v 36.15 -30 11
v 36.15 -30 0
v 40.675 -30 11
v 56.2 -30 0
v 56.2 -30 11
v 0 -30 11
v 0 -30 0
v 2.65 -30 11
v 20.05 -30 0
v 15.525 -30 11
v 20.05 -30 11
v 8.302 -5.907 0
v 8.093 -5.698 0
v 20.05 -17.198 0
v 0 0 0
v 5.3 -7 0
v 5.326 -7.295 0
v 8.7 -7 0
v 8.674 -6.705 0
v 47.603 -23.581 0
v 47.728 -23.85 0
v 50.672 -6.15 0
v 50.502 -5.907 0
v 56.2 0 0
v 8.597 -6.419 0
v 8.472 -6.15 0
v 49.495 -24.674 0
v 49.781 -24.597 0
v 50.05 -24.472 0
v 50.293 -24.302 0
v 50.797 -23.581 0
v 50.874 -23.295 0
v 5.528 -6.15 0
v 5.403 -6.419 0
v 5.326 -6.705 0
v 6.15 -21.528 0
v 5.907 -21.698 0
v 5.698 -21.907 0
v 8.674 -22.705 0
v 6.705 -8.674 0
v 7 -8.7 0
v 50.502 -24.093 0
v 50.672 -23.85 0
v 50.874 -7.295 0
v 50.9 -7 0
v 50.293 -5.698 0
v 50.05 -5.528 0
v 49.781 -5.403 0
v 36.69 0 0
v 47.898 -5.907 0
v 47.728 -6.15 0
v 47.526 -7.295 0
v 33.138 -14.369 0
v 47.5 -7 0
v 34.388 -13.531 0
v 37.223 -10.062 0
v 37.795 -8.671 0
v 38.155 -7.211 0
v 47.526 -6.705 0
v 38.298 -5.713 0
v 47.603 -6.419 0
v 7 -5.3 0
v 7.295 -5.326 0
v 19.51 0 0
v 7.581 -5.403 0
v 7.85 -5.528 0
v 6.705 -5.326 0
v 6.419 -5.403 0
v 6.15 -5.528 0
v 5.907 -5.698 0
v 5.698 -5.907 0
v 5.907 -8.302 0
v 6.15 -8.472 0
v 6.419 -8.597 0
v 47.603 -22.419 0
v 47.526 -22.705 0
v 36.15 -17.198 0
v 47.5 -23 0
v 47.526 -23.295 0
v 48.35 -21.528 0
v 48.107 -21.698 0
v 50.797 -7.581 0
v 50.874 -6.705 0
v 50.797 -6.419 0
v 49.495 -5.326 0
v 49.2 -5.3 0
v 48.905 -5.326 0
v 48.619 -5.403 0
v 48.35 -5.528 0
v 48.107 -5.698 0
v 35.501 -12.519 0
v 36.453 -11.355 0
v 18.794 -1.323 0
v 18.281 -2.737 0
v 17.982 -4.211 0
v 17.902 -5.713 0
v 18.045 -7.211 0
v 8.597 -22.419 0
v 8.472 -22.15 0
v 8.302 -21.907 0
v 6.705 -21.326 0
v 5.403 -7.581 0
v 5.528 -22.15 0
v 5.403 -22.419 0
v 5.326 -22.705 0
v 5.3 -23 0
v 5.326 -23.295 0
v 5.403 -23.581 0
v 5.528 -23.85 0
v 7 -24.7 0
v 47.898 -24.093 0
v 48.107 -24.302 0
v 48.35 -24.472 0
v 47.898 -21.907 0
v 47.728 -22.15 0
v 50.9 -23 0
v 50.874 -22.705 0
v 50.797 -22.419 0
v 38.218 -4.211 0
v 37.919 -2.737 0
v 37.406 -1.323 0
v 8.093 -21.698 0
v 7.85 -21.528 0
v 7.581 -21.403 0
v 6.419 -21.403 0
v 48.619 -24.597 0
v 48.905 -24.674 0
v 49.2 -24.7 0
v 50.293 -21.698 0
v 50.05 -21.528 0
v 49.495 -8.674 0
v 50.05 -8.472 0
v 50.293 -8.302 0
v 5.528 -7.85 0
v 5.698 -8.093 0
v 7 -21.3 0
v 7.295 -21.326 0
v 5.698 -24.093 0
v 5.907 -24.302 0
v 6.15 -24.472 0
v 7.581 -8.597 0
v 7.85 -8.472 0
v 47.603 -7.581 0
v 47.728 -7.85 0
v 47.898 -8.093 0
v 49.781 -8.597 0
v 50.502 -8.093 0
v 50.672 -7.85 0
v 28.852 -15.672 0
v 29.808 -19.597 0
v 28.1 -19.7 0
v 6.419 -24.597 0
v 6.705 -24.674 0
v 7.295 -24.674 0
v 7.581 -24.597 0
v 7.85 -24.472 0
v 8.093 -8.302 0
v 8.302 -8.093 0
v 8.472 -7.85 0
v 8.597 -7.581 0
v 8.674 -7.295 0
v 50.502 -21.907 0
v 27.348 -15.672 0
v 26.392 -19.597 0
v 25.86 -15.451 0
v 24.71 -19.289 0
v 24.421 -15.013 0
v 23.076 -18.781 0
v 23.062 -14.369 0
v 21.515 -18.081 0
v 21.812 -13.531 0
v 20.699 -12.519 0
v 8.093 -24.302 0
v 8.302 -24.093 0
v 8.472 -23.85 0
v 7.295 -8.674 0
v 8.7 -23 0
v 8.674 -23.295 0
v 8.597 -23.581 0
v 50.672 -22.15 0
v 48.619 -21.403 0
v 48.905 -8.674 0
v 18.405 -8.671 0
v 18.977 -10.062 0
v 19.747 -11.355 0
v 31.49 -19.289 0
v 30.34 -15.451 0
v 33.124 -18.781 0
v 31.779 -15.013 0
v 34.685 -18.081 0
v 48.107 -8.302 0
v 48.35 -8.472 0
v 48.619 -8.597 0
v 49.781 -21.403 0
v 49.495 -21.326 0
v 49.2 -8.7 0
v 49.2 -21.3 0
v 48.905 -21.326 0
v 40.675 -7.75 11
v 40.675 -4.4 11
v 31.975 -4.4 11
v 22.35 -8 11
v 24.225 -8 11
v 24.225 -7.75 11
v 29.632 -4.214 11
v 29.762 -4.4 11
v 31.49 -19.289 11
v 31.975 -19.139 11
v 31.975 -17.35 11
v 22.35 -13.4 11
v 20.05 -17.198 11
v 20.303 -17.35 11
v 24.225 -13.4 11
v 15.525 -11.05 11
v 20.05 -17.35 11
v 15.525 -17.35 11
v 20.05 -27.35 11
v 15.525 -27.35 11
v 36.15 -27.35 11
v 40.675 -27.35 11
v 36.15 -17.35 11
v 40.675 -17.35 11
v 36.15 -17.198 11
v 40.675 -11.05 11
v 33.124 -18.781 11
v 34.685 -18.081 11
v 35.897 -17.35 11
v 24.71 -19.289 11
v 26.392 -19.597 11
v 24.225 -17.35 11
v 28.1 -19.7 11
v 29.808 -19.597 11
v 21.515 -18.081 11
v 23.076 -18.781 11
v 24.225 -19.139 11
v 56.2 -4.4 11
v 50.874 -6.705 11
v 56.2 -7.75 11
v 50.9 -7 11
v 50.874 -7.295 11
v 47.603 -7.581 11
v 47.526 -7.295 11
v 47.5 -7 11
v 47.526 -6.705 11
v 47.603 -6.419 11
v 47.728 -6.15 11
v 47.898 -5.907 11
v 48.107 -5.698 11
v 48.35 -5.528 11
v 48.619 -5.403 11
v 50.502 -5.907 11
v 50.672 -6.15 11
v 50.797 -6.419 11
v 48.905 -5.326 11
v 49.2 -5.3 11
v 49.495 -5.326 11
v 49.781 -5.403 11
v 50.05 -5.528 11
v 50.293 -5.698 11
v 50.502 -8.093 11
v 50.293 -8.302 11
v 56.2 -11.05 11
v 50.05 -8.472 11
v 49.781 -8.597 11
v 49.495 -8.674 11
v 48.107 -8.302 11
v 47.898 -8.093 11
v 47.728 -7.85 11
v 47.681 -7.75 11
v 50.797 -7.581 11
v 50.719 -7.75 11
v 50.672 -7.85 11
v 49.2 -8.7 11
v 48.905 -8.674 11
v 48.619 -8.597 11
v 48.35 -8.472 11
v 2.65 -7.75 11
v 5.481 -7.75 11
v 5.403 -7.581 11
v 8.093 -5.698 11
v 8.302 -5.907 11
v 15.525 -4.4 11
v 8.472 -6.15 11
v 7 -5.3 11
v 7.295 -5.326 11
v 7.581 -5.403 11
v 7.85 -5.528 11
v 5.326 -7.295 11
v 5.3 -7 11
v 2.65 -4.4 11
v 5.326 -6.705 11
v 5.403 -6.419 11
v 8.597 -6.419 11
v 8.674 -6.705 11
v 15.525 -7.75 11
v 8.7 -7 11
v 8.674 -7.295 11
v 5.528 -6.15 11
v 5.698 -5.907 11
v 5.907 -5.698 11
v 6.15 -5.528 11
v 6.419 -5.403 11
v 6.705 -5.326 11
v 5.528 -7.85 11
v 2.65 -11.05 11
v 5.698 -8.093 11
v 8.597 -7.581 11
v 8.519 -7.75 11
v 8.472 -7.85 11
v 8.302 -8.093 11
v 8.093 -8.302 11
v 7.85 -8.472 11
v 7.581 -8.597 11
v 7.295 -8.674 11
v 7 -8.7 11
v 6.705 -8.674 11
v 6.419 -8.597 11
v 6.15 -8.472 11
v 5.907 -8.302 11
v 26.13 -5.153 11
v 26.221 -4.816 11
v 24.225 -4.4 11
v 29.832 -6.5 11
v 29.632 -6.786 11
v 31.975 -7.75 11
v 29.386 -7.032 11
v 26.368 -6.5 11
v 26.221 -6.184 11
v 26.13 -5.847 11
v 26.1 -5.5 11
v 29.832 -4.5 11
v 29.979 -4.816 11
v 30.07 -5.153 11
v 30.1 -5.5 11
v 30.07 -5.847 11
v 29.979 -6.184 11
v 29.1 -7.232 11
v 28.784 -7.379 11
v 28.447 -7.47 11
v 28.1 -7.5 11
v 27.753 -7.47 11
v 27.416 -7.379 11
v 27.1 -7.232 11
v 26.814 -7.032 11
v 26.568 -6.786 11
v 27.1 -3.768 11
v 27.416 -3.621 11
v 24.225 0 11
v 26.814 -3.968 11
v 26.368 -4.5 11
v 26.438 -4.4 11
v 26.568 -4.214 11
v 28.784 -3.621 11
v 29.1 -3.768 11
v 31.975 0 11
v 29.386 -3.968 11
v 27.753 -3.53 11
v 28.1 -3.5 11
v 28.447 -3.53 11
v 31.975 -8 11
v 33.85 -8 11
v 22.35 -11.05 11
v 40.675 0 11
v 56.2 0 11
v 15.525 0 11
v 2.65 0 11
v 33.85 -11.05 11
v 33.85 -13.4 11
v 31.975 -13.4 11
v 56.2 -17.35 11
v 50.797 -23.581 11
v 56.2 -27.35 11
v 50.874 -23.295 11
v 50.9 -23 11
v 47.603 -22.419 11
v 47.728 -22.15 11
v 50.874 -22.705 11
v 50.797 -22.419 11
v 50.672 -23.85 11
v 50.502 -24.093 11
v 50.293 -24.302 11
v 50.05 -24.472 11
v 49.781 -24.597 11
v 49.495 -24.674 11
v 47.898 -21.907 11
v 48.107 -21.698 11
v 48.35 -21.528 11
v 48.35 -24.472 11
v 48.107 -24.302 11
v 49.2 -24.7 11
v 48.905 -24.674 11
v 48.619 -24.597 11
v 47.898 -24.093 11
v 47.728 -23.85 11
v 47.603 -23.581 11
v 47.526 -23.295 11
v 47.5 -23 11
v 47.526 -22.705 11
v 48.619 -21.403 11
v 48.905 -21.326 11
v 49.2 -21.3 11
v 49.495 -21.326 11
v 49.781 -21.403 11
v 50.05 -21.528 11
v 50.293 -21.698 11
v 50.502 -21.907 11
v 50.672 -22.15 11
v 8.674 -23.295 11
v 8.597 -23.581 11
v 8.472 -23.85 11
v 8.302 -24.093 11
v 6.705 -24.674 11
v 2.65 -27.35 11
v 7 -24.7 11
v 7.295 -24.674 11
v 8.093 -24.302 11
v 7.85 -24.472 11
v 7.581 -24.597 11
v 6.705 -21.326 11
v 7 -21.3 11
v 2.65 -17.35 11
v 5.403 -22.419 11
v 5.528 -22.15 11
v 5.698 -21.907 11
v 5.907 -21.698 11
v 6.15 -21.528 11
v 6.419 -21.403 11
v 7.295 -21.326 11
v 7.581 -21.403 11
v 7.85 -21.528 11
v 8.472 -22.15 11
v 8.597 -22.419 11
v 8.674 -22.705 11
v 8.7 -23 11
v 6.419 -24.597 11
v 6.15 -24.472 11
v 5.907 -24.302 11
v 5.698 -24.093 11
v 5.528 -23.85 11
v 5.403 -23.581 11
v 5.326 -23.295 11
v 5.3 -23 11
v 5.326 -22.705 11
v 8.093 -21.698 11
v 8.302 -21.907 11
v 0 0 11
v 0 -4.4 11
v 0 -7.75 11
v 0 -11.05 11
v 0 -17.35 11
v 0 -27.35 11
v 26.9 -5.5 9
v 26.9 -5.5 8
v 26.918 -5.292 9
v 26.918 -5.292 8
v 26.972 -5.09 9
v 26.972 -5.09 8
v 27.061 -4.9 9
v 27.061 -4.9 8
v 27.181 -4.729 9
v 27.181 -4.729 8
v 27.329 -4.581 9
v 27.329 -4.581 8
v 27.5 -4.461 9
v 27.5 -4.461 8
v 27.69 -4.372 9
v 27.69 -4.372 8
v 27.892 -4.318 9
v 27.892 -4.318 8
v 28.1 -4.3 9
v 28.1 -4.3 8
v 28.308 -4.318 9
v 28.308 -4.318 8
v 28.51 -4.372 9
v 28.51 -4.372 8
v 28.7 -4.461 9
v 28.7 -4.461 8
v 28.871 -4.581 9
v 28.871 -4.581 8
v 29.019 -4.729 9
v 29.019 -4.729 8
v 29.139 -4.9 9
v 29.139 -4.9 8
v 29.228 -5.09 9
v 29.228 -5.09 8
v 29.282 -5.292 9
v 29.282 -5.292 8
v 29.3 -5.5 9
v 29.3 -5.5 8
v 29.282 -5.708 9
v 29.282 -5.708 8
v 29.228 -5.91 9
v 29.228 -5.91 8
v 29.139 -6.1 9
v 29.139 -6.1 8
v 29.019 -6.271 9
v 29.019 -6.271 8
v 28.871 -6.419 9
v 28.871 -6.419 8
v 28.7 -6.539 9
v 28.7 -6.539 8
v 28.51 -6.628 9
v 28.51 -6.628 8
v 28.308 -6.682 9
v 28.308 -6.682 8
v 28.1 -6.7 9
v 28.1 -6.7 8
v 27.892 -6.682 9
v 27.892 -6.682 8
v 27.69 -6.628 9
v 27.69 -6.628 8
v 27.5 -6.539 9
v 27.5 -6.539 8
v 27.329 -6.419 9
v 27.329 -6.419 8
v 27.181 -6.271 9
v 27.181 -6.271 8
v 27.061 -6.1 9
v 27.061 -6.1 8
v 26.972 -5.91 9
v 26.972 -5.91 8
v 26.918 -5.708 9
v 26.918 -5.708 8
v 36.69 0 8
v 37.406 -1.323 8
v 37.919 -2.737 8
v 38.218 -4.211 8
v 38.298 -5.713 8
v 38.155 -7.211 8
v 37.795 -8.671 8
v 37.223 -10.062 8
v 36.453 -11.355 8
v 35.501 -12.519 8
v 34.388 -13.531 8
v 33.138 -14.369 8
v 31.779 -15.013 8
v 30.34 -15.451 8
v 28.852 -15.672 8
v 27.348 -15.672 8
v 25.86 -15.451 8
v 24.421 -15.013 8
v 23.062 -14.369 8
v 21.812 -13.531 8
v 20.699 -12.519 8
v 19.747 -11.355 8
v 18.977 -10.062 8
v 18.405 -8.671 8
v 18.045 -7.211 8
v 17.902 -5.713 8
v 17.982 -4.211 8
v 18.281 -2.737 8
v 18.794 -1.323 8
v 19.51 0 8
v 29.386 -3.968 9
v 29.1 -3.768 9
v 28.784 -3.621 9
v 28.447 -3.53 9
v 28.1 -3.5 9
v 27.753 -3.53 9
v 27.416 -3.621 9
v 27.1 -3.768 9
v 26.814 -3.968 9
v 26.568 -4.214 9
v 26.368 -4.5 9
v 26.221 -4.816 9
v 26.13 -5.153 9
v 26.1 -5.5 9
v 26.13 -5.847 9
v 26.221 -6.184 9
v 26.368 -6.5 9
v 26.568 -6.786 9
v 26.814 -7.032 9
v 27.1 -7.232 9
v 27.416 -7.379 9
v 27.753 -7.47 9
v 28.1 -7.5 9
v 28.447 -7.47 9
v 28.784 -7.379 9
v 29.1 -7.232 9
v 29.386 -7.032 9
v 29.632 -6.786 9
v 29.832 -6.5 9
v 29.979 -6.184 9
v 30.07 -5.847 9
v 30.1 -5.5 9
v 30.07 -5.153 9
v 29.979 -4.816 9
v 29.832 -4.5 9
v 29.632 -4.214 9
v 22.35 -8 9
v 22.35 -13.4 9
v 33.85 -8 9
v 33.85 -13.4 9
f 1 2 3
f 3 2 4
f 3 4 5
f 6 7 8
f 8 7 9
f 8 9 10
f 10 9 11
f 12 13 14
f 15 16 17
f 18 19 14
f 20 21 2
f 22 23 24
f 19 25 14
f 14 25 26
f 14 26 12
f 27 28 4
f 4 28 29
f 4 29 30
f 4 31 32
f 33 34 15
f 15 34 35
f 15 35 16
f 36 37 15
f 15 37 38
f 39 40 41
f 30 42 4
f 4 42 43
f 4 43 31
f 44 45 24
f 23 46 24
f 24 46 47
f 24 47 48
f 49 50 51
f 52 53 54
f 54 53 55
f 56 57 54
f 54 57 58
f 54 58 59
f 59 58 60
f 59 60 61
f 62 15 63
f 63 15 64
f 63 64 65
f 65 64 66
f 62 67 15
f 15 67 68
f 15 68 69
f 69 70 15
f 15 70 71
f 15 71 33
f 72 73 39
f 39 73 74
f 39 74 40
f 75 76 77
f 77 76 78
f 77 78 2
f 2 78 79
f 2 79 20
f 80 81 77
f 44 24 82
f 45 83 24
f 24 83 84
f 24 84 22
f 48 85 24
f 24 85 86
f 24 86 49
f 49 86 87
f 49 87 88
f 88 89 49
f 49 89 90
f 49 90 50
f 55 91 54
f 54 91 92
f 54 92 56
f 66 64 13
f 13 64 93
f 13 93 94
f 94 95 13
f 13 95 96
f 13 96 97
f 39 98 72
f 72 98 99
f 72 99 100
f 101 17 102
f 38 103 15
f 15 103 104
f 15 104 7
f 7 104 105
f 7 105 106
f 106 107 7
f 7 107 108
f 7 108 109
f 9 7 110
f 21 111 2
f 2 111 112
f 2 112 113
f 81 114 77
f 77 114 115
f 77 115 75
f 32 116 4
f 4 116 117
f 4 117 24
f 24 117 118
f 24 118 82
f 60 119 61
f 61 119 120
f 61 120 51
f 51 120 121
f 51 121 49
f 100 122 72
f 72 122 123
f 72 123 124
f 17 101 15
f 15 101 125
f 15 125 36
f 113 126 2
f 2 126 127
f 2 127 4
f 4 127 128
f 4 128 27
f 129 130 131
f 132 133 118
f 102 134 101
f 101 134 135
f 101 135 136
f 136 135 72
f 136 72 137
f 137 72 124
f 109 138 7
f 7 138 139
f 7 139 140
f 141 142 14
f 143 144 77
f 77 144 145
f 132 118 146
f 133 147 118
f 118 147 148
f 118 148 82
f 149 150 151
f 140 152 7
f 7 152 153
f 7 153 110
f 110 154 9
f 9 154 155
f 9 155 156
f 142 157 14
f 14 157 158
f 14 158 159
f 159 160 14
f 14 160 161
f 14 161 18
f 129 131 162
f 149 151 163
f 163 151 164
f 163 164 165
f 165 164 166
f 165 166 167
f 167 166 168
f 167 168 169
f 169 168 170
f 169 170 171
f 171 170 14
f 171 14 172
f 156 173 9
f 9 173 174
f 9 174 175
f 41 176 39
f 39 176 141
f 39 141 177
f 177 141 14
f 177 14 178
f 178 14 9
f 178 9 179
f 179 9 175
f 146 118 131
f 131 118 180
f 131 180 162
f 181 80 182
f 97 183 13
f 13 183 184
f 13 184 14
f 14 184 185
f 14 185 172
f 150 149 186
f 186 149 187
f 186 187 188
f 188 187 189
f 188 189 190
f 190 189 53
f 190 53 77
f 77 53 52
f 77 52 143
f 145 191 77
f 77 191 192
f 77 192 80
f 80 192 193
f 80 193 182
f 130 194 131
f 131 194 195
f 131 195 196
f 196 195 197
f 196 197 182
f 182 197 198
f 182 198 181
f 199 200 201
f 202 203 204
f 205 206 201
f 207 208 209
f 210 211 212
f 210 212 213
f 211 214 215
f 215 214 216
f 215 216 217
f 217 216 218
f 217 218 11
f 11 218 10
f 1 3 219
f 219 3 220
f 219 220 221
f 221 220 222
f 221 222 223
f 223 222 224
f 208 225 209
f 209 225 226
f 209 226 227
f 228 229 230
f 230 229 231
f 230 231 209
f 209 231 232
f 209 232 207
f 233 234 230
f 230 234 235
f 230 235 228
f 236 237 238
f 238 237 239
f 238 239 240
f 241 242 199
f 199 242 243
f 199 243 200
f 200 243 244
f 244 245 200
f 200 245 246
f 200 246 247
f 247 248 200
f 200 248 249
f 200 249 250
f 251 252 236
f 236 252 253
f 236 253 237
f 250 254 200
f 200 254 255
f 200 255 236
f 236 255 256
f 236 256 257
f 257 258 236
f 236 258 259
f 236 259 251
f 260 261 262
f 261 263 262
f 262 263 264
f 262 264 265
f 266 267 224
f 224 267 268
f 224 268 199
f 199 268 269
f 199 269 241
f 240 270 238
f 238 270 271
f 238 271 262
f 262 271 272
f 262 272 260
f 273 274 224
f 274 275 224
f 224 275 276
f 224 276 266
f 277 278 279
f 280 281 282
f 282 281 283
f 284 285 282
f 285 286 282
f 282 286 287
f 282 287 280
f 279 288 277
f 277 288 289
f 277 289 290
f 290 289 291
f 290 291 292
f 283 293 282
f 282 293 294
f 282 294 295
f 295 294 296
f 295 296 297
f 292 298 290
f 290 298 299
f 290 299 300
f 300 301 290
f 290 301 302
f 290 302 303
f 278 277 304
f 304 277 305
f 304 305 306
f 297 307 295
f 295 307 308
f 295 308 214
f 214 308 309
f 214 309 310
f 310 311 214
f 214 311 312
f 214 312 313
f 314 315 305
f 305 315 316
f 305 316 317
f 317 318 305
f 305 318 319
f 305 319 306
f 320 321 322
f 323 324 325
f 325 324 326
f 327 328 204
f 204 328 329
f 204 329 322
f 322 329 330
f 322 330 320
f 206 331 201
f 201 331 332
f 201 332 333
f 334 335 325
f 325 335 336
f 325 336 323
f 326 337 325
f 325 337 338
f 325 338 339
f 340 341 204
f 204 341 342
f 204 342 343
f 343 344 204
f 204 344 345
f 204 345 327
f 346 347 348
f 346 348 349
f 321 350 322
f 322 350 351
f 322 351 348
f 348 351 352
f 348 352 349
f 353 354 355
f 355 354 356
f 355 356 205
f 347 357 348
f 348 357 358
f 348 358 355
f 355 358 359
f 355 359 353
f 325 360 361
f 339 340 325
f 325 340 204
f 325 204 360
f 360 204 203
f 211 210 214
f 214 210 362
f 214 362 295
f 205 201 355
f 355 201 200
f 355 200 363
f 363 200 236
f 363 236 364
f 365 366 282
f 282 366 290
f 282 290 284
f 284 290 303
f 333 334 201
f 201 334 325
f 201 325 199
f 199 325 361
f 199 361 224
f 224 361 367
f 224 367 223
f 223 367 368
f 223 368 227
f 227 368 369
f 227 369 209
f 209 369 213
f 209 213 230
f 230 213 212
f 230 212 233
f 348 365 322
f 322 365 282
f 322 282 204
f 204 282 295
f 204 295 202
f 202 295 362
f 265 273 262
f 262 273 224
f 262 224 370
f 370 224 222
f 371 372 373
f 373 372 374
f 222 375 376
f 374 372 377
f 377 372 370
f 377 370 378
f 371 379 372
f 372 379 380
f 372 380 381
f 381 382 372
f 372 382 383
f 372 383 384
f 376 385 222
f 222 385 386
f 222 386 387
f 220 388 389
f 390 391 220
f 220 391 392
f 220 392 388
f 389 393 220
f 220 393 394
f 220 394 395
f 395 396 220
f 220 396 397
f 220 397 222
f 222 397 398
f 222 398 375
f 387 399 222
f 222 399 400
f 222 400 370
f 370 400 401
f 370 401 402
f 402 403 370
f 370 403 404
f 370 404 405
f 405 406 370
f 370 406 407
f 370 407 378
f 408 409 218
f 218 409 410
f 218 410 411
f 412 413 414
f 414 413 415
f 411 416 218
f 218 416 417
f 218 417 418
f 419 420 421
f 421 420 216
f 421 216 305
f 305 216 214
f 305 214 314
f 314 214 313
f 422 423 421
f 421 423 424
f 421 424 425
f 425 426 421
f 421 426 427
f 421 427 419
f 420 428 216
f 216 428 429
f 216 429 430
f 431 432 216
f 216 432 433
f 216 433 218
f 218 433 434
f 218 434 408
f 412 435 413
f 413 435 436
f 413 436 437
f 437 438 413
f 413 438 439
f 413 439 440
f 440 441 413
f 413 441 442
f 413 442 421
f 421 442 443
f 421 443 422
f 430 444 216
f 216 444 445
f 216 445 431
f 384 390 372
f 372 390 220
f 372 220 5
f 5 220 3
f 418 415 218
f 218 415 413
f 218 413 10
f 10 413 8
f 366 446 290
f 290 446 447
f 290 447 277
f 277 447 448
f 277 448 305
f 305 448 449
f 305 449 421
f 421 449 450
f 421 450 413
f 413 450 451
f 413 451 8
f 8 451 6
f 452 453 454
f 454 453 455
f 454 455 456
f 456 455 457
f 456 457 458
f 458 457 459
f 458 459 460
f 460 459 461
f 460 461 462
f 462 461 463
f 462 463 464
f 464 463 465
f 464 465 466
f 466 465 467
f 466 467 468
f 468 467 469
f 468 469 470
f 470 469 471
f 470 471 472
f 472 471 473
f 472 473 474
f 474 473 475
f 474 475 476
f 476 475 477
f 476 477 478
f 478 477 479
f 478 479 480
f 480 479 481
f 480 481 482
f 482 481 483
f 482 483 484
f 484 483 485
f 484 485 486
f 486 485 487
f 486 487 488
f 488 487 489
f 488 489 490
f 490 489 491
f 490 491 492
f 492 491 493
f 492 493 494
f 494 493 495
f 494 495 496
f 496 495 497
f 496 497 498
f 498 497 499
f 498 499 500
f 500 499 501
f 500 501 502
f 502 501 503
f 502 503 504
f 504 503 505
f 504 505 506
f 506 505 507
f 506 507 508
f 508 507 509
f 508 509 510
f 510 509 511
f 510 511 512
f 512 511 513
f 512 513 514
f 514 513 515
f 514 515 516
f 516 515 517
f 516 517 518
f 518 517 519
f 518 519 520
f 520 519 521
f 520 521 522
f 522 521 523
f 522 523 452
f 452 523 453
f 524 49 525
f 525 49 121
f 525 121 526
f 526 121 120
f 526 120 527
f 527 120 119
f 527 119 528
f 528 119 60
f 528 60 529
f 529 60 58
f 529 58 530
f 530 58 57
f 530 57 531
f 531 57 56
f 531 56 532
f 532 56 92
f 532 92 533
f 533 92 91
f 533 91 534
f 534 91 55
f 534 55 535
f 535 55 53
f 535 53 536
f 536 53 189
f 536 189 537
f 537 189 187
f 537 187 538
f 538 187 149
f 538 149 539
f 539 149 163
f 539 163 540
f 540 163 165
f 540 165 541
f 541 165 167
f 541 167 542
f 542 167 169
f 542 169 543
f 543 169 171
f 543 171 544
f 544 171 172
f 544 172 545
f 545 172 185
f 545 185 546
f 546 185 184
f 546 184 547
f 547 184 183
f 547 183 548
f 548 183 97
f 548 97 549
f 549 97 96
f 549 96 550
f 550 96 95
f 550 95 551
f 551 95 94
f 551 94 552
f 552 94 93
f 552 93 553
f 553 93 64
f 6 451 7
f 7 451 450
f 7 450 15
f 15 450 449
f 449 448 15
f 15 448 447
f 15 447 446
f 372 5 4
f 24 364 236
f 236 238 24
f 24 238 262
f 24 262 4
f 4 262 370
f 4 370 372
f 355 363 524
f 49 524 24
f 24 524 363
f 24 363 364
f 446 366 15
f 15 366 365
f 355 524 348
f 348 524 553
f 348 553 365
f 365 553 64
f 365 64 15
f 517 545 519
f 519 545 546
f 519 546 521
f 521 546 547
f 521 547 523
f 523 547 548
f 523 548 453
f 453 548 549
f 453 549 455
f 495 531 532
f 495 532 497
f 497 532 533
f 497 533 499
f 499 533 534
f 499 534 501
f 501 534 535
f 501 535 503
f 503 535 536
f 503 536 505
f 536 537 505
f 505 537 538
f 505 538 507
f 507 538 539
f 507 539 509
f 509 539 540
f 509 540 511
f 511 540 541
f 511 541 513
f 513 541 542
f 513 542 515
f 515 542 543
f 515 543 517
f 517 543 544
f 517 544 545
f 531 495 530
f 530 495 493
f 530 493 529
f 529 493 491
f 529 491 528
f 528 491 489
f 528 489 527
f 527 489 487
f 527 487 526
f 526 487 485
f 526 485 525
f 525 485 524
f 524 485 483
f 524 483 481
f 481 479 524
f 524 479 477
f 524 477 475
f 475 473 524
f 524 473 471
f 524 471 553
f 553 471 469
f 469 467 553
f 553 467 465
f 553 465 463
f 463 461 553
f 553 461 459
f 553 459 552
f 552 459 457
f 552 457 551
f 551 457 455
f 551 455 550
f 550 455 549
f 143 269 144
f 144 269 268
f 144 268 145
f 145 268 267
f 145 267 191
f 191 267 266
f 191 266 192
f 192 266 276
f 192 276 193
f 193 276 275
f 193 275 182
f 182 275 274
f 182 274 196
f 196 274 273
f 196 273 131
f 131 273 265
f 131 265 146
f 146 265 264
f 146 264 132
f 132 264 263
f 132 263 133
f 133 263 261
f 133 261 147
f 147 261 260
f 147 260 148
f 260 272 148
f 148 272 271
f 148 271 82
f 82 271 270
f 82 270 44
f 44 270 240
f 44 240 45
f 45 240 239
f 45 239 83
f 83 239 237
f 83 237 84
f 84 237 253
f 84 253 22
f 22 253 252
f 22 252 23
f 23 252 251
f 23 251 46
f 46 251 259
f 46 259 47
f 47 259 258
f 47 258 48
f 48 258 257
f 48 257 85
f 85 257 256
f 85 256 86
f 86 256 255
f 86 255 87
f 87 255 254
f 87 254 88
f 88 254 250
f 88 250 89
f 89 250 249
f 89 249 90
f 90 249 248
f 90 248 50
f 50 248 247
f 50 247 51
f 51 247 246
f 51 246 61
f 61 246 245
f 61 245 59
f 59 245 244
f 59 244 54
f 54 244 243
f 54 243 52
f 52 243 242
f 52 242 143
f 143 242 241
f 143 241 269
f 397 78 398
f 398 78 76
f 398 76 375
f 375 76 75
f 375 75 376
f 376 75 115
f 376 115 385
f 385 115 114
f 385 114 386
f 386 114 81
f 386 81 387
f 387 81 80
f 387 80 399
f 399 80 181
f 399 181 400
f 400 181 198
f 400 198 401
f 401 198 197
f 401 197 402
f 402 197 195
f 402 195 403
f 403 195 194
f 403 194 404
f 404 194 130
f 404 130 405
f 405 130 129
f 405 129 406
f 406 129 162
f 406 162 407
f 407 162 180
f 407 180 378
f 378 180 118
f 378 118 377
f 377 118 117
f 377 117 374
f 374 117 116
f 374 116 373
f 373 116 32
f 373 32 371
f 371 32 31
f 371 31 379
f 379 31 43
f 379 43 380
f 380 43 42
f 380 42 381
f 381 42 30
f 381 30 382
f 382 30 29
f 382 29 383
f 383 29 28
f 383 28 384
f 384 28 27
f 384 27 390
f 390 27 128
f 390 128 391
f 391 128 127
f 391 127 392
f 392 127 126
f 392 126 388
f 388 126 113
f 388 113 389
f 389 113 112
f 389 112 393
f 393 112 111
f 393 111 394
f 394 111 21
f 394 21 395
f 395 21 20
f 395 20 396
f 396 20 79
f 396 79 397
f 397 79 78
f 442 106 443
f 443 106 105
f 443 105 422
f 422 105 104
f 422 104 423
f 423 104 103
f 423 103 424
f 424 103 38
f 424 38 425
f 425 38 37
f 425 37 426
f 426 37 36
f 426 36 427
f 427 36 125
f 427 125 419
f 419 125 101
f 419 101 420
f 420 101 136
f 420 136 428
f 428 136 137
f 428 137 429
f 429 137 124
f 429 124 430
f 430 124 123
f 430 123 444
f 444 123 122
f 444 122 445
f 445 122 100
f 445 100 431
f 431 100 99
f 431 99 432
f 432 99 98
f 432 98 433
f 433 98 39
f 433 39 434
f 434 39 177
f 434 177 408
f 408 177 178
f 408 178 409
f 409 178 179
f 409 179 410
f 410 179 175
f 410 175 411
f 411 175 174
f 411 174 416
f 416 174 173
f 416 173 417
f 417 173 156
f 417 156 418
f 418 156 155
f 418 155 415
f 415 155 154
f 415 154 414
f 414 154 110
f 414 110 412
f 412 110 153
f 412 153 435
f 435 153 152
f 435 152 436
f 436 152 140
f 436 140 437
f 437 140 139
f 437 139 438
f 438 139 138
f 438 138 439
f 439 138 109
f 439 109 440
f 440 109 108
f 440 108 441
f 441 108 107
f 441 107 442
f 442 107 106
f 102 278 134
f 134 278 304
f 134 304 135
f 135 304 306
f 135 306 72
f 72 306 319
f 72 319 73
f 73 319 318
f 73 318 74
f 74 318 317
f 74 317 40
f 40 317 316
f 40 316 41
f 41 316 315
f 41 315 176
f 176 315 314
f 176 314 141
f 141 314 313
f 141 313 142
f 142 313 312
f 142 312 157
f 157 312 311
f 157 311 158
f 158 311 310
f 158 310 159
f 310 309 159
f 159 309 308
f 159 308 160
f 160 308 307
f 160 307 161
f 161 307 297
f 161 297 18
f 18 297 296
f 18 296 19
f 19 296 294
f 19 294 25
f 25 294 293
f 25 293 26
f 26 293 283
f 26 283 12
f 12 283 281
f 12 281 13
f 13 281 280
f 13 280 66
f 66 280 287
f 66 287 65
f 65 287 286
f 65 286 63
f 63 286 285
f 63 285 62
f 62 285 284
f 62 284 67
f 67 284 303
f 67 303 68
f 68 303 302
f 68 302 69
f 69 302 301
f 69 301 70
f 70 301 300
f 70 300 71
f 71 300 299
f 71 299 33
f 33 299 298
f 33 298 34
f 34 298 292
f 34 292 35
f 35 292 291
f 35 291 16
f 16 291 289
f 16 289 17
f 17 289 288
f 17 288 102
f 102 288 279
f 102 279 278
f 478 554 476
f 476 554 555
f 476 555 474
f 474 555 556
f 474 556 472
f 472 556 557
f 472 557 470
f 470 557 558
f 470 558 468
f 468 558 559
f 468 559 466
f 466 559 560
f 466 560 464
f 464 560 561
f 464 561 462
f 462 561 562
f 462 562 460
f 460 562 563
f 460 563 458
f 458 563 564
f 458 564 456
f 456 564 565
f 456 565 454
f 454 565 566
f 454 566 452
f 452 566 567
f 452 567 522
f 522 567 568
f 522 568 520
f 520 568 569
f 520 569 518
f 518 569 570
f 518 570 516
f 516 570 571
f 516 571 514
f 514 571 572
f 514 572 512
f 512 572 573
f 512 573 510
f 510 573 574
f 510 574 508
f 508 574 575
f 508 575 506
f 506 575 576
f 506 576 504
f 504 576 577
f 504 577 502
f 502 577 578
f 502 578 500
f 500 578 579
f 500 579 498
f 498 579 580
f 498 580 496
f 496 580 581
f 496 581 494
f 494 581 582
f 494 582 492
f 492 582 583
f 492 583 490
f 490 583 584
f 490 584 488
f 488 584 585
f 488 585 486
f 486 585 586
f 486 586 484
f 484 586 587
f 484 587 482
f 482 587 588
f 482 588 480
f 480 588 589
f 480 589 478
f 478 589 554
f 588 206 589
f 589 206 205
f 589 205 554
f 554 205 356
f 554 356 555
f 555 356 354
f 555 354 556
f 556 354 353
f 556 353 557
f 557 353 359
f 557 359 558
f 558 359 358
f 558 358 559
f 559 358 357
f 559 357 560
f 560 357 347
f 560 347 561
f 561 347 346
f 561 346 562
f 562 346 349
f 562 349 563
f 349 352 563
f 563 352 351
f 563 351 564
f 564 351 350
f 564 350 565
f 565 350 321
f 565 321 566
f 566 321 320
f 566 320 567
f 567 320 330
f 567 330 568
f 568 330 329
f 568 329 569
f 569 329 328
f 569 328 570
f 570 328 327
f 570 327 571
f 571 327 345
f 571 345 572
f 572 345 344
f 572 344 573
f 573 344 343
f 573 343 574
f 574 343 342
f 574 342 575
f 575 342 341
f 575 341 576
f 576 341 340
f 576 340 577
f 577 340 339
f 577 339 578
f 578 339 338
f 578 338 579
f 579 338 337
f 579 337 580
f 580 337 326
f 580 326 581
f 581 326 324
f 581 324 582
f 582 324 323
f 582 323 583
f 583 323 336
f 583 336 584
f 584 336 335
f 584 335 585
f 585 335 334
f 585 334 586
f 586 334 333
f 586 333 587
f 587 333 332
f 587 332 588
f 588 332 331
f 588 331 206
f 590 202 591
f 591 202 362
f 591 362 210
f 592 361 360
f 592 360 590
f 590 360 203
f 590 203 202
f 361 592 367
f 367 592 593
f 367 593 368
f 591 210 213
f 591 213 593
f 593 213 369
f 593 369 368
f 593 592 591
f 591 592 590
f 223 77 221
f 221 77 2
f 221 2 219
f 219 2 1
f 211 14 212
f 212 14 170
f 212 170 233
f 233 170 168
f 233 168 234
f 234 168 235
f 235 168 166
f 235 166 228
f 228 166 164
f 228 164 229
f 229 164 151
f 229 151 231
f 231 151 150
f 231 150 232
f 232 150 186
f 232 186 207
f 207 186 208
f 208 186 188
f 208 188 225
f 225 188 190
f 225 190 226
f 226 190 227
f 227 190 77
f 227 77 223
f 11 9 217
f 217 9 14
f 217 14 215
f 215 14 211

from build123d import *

# Parameters (mm, degrees)
BOSS_EXTRUDE1_DEPTH = 8
SKETCH3_W           = 56.2
SKETCH3_H           = 30
BOSS_EXTRUDE2_DEPTH = 3
SKETCH4_R           = 1.7
SKETCH4_R_2         = 1.2
CUT_EXTRUDE2_DEPTH  = 11
CUT_EXTRUDE3_DEPTH  = 8
SKETCH7_R           = 2
SKETCH7_W           = 11.5
SKETCH7_H           = 5.4
CUT_EXTRUDE4_DEPTH  = 2
CUT_EXTRUDE6_REACH  = 13


with BuildPart() as part:
    # Sketch1 → Boss-Extrude1 (new body)
    with BuildSketch(Plane.XY):
        with BuildLine():
            Line((19.509889407, 0), (0, 0))
            Line((0, 0), (0, -30))
            Line((0, -30), (56.2, -30))
            Line((56.2, -30), (56.2, 0))
            Line((56.2, 0), (36.690110593, 0))
            Line((36.690110593, 0), (35.825930365, 0))
            ThreePointArc((35.825930365, 0), (34.325930365, -1.5), (35.825930365, -3))
            Line((35.825930365, -3), (37.988882647, -3))
            ThreePointArc((37.988882647, -3), (26.465465751, -15.568182447), (19.509889407, 0))
        make_face()
    extrude(amount=BOSS_EXTRUDE1_DEPTH)

    # Sketch3 → Boss-Extrude2 (add)
    with BuildSketch(Plane.XY.offset(8)):
        with Locations((28.1, -15)):
            Rectangle(SKETCH3_W, SKETCH3_H)
    extrude(amount=BOSS_EXTRUDE2_DEPTH)

    # Sketch4 → Cut-Extrude2 (cut)
    with BuildSketch(Plane(origin=(0, 0, 0), x_dir=(-1, 0, 0), z_dir=(0, 0, -1))):
        with Locations((-49.2, -7)):
            Circle(SKETCH4_R)
        with Locations((-7, -7)):
            Circle(SKETCH4_R)
        with Locations((-7, -23)):
            Circle(SKETCH4_R)
        with Locations((-49.2, -23)):
            Circle(SKETCH4_R)
        with Locations((-28.1, -5.5)):
            Circle(SKETCH4_R_2)
    extrude(amount=-CUT_EXTRUDE2_DEPTH, mode=Mode.SUBTRACT)

    # Sketch5 → Cut-Extrude3 (cut)
    with BuildSketch(Plane(origin=(0, 0, 0), x_dir=(-1, 0, 0), z_dir=(0, 0, -1))):
        with BuildLine():
            Line((-19.509889407, 0), (-36.690110593, 0))
            ThreePointArc((-36.690110593, 0), (-28.1, -15.7), (-19.509889407, 0))
        make_face()
    extrude(amount=-CUT_EXTRUDE3_DEPTH, mode=Mode.SUBTRACT)

    # Sketch7 → Cut-Extrude4 (cut)
    with BuildSketch(Plane.XY.offset(11)):
        with Locations((28.1, -5.5)):
            Circle(SKETCH7_R)
        with Locations((28.1, -10.7)):
            Rectangle(SKETCH7_W, SKETCH7_H)
    extrude(amount=-CUT_EXTRUDE4_DEPTH, mode=Mode.SUBTRACT)

    # Sketch9 → Cut-Extrude6 (cut, up to next)
    with BuildSketch(Plane.XY, mode=Mode.PRIVATE) as cut_extrude6_sk1:
        with BuildLine():
            Line((36.15, -30), (36.15, -17.197756195))
            ThreePointArc((36.15, -17.197756195), (28.1, -19.7), (20.05, -17.197756195))
            Line((20.05, -17.197756195), (20.05, -30))
            Line((20.05, -30), (36.15, -30))
        make_face()
    cut_extrude6_tool1 = extrude(cut_extrude6_sk1.sketch, amount=CUT_EXTRUDE6_REACH, mode=Mode.PRIVATE) & part.part
    add(cut_extrude6_tool1.solids().sort_by_distance((28.1, -24.424534, 0))[0], mode=Mode.SUBTRACT)


solid = part.part
